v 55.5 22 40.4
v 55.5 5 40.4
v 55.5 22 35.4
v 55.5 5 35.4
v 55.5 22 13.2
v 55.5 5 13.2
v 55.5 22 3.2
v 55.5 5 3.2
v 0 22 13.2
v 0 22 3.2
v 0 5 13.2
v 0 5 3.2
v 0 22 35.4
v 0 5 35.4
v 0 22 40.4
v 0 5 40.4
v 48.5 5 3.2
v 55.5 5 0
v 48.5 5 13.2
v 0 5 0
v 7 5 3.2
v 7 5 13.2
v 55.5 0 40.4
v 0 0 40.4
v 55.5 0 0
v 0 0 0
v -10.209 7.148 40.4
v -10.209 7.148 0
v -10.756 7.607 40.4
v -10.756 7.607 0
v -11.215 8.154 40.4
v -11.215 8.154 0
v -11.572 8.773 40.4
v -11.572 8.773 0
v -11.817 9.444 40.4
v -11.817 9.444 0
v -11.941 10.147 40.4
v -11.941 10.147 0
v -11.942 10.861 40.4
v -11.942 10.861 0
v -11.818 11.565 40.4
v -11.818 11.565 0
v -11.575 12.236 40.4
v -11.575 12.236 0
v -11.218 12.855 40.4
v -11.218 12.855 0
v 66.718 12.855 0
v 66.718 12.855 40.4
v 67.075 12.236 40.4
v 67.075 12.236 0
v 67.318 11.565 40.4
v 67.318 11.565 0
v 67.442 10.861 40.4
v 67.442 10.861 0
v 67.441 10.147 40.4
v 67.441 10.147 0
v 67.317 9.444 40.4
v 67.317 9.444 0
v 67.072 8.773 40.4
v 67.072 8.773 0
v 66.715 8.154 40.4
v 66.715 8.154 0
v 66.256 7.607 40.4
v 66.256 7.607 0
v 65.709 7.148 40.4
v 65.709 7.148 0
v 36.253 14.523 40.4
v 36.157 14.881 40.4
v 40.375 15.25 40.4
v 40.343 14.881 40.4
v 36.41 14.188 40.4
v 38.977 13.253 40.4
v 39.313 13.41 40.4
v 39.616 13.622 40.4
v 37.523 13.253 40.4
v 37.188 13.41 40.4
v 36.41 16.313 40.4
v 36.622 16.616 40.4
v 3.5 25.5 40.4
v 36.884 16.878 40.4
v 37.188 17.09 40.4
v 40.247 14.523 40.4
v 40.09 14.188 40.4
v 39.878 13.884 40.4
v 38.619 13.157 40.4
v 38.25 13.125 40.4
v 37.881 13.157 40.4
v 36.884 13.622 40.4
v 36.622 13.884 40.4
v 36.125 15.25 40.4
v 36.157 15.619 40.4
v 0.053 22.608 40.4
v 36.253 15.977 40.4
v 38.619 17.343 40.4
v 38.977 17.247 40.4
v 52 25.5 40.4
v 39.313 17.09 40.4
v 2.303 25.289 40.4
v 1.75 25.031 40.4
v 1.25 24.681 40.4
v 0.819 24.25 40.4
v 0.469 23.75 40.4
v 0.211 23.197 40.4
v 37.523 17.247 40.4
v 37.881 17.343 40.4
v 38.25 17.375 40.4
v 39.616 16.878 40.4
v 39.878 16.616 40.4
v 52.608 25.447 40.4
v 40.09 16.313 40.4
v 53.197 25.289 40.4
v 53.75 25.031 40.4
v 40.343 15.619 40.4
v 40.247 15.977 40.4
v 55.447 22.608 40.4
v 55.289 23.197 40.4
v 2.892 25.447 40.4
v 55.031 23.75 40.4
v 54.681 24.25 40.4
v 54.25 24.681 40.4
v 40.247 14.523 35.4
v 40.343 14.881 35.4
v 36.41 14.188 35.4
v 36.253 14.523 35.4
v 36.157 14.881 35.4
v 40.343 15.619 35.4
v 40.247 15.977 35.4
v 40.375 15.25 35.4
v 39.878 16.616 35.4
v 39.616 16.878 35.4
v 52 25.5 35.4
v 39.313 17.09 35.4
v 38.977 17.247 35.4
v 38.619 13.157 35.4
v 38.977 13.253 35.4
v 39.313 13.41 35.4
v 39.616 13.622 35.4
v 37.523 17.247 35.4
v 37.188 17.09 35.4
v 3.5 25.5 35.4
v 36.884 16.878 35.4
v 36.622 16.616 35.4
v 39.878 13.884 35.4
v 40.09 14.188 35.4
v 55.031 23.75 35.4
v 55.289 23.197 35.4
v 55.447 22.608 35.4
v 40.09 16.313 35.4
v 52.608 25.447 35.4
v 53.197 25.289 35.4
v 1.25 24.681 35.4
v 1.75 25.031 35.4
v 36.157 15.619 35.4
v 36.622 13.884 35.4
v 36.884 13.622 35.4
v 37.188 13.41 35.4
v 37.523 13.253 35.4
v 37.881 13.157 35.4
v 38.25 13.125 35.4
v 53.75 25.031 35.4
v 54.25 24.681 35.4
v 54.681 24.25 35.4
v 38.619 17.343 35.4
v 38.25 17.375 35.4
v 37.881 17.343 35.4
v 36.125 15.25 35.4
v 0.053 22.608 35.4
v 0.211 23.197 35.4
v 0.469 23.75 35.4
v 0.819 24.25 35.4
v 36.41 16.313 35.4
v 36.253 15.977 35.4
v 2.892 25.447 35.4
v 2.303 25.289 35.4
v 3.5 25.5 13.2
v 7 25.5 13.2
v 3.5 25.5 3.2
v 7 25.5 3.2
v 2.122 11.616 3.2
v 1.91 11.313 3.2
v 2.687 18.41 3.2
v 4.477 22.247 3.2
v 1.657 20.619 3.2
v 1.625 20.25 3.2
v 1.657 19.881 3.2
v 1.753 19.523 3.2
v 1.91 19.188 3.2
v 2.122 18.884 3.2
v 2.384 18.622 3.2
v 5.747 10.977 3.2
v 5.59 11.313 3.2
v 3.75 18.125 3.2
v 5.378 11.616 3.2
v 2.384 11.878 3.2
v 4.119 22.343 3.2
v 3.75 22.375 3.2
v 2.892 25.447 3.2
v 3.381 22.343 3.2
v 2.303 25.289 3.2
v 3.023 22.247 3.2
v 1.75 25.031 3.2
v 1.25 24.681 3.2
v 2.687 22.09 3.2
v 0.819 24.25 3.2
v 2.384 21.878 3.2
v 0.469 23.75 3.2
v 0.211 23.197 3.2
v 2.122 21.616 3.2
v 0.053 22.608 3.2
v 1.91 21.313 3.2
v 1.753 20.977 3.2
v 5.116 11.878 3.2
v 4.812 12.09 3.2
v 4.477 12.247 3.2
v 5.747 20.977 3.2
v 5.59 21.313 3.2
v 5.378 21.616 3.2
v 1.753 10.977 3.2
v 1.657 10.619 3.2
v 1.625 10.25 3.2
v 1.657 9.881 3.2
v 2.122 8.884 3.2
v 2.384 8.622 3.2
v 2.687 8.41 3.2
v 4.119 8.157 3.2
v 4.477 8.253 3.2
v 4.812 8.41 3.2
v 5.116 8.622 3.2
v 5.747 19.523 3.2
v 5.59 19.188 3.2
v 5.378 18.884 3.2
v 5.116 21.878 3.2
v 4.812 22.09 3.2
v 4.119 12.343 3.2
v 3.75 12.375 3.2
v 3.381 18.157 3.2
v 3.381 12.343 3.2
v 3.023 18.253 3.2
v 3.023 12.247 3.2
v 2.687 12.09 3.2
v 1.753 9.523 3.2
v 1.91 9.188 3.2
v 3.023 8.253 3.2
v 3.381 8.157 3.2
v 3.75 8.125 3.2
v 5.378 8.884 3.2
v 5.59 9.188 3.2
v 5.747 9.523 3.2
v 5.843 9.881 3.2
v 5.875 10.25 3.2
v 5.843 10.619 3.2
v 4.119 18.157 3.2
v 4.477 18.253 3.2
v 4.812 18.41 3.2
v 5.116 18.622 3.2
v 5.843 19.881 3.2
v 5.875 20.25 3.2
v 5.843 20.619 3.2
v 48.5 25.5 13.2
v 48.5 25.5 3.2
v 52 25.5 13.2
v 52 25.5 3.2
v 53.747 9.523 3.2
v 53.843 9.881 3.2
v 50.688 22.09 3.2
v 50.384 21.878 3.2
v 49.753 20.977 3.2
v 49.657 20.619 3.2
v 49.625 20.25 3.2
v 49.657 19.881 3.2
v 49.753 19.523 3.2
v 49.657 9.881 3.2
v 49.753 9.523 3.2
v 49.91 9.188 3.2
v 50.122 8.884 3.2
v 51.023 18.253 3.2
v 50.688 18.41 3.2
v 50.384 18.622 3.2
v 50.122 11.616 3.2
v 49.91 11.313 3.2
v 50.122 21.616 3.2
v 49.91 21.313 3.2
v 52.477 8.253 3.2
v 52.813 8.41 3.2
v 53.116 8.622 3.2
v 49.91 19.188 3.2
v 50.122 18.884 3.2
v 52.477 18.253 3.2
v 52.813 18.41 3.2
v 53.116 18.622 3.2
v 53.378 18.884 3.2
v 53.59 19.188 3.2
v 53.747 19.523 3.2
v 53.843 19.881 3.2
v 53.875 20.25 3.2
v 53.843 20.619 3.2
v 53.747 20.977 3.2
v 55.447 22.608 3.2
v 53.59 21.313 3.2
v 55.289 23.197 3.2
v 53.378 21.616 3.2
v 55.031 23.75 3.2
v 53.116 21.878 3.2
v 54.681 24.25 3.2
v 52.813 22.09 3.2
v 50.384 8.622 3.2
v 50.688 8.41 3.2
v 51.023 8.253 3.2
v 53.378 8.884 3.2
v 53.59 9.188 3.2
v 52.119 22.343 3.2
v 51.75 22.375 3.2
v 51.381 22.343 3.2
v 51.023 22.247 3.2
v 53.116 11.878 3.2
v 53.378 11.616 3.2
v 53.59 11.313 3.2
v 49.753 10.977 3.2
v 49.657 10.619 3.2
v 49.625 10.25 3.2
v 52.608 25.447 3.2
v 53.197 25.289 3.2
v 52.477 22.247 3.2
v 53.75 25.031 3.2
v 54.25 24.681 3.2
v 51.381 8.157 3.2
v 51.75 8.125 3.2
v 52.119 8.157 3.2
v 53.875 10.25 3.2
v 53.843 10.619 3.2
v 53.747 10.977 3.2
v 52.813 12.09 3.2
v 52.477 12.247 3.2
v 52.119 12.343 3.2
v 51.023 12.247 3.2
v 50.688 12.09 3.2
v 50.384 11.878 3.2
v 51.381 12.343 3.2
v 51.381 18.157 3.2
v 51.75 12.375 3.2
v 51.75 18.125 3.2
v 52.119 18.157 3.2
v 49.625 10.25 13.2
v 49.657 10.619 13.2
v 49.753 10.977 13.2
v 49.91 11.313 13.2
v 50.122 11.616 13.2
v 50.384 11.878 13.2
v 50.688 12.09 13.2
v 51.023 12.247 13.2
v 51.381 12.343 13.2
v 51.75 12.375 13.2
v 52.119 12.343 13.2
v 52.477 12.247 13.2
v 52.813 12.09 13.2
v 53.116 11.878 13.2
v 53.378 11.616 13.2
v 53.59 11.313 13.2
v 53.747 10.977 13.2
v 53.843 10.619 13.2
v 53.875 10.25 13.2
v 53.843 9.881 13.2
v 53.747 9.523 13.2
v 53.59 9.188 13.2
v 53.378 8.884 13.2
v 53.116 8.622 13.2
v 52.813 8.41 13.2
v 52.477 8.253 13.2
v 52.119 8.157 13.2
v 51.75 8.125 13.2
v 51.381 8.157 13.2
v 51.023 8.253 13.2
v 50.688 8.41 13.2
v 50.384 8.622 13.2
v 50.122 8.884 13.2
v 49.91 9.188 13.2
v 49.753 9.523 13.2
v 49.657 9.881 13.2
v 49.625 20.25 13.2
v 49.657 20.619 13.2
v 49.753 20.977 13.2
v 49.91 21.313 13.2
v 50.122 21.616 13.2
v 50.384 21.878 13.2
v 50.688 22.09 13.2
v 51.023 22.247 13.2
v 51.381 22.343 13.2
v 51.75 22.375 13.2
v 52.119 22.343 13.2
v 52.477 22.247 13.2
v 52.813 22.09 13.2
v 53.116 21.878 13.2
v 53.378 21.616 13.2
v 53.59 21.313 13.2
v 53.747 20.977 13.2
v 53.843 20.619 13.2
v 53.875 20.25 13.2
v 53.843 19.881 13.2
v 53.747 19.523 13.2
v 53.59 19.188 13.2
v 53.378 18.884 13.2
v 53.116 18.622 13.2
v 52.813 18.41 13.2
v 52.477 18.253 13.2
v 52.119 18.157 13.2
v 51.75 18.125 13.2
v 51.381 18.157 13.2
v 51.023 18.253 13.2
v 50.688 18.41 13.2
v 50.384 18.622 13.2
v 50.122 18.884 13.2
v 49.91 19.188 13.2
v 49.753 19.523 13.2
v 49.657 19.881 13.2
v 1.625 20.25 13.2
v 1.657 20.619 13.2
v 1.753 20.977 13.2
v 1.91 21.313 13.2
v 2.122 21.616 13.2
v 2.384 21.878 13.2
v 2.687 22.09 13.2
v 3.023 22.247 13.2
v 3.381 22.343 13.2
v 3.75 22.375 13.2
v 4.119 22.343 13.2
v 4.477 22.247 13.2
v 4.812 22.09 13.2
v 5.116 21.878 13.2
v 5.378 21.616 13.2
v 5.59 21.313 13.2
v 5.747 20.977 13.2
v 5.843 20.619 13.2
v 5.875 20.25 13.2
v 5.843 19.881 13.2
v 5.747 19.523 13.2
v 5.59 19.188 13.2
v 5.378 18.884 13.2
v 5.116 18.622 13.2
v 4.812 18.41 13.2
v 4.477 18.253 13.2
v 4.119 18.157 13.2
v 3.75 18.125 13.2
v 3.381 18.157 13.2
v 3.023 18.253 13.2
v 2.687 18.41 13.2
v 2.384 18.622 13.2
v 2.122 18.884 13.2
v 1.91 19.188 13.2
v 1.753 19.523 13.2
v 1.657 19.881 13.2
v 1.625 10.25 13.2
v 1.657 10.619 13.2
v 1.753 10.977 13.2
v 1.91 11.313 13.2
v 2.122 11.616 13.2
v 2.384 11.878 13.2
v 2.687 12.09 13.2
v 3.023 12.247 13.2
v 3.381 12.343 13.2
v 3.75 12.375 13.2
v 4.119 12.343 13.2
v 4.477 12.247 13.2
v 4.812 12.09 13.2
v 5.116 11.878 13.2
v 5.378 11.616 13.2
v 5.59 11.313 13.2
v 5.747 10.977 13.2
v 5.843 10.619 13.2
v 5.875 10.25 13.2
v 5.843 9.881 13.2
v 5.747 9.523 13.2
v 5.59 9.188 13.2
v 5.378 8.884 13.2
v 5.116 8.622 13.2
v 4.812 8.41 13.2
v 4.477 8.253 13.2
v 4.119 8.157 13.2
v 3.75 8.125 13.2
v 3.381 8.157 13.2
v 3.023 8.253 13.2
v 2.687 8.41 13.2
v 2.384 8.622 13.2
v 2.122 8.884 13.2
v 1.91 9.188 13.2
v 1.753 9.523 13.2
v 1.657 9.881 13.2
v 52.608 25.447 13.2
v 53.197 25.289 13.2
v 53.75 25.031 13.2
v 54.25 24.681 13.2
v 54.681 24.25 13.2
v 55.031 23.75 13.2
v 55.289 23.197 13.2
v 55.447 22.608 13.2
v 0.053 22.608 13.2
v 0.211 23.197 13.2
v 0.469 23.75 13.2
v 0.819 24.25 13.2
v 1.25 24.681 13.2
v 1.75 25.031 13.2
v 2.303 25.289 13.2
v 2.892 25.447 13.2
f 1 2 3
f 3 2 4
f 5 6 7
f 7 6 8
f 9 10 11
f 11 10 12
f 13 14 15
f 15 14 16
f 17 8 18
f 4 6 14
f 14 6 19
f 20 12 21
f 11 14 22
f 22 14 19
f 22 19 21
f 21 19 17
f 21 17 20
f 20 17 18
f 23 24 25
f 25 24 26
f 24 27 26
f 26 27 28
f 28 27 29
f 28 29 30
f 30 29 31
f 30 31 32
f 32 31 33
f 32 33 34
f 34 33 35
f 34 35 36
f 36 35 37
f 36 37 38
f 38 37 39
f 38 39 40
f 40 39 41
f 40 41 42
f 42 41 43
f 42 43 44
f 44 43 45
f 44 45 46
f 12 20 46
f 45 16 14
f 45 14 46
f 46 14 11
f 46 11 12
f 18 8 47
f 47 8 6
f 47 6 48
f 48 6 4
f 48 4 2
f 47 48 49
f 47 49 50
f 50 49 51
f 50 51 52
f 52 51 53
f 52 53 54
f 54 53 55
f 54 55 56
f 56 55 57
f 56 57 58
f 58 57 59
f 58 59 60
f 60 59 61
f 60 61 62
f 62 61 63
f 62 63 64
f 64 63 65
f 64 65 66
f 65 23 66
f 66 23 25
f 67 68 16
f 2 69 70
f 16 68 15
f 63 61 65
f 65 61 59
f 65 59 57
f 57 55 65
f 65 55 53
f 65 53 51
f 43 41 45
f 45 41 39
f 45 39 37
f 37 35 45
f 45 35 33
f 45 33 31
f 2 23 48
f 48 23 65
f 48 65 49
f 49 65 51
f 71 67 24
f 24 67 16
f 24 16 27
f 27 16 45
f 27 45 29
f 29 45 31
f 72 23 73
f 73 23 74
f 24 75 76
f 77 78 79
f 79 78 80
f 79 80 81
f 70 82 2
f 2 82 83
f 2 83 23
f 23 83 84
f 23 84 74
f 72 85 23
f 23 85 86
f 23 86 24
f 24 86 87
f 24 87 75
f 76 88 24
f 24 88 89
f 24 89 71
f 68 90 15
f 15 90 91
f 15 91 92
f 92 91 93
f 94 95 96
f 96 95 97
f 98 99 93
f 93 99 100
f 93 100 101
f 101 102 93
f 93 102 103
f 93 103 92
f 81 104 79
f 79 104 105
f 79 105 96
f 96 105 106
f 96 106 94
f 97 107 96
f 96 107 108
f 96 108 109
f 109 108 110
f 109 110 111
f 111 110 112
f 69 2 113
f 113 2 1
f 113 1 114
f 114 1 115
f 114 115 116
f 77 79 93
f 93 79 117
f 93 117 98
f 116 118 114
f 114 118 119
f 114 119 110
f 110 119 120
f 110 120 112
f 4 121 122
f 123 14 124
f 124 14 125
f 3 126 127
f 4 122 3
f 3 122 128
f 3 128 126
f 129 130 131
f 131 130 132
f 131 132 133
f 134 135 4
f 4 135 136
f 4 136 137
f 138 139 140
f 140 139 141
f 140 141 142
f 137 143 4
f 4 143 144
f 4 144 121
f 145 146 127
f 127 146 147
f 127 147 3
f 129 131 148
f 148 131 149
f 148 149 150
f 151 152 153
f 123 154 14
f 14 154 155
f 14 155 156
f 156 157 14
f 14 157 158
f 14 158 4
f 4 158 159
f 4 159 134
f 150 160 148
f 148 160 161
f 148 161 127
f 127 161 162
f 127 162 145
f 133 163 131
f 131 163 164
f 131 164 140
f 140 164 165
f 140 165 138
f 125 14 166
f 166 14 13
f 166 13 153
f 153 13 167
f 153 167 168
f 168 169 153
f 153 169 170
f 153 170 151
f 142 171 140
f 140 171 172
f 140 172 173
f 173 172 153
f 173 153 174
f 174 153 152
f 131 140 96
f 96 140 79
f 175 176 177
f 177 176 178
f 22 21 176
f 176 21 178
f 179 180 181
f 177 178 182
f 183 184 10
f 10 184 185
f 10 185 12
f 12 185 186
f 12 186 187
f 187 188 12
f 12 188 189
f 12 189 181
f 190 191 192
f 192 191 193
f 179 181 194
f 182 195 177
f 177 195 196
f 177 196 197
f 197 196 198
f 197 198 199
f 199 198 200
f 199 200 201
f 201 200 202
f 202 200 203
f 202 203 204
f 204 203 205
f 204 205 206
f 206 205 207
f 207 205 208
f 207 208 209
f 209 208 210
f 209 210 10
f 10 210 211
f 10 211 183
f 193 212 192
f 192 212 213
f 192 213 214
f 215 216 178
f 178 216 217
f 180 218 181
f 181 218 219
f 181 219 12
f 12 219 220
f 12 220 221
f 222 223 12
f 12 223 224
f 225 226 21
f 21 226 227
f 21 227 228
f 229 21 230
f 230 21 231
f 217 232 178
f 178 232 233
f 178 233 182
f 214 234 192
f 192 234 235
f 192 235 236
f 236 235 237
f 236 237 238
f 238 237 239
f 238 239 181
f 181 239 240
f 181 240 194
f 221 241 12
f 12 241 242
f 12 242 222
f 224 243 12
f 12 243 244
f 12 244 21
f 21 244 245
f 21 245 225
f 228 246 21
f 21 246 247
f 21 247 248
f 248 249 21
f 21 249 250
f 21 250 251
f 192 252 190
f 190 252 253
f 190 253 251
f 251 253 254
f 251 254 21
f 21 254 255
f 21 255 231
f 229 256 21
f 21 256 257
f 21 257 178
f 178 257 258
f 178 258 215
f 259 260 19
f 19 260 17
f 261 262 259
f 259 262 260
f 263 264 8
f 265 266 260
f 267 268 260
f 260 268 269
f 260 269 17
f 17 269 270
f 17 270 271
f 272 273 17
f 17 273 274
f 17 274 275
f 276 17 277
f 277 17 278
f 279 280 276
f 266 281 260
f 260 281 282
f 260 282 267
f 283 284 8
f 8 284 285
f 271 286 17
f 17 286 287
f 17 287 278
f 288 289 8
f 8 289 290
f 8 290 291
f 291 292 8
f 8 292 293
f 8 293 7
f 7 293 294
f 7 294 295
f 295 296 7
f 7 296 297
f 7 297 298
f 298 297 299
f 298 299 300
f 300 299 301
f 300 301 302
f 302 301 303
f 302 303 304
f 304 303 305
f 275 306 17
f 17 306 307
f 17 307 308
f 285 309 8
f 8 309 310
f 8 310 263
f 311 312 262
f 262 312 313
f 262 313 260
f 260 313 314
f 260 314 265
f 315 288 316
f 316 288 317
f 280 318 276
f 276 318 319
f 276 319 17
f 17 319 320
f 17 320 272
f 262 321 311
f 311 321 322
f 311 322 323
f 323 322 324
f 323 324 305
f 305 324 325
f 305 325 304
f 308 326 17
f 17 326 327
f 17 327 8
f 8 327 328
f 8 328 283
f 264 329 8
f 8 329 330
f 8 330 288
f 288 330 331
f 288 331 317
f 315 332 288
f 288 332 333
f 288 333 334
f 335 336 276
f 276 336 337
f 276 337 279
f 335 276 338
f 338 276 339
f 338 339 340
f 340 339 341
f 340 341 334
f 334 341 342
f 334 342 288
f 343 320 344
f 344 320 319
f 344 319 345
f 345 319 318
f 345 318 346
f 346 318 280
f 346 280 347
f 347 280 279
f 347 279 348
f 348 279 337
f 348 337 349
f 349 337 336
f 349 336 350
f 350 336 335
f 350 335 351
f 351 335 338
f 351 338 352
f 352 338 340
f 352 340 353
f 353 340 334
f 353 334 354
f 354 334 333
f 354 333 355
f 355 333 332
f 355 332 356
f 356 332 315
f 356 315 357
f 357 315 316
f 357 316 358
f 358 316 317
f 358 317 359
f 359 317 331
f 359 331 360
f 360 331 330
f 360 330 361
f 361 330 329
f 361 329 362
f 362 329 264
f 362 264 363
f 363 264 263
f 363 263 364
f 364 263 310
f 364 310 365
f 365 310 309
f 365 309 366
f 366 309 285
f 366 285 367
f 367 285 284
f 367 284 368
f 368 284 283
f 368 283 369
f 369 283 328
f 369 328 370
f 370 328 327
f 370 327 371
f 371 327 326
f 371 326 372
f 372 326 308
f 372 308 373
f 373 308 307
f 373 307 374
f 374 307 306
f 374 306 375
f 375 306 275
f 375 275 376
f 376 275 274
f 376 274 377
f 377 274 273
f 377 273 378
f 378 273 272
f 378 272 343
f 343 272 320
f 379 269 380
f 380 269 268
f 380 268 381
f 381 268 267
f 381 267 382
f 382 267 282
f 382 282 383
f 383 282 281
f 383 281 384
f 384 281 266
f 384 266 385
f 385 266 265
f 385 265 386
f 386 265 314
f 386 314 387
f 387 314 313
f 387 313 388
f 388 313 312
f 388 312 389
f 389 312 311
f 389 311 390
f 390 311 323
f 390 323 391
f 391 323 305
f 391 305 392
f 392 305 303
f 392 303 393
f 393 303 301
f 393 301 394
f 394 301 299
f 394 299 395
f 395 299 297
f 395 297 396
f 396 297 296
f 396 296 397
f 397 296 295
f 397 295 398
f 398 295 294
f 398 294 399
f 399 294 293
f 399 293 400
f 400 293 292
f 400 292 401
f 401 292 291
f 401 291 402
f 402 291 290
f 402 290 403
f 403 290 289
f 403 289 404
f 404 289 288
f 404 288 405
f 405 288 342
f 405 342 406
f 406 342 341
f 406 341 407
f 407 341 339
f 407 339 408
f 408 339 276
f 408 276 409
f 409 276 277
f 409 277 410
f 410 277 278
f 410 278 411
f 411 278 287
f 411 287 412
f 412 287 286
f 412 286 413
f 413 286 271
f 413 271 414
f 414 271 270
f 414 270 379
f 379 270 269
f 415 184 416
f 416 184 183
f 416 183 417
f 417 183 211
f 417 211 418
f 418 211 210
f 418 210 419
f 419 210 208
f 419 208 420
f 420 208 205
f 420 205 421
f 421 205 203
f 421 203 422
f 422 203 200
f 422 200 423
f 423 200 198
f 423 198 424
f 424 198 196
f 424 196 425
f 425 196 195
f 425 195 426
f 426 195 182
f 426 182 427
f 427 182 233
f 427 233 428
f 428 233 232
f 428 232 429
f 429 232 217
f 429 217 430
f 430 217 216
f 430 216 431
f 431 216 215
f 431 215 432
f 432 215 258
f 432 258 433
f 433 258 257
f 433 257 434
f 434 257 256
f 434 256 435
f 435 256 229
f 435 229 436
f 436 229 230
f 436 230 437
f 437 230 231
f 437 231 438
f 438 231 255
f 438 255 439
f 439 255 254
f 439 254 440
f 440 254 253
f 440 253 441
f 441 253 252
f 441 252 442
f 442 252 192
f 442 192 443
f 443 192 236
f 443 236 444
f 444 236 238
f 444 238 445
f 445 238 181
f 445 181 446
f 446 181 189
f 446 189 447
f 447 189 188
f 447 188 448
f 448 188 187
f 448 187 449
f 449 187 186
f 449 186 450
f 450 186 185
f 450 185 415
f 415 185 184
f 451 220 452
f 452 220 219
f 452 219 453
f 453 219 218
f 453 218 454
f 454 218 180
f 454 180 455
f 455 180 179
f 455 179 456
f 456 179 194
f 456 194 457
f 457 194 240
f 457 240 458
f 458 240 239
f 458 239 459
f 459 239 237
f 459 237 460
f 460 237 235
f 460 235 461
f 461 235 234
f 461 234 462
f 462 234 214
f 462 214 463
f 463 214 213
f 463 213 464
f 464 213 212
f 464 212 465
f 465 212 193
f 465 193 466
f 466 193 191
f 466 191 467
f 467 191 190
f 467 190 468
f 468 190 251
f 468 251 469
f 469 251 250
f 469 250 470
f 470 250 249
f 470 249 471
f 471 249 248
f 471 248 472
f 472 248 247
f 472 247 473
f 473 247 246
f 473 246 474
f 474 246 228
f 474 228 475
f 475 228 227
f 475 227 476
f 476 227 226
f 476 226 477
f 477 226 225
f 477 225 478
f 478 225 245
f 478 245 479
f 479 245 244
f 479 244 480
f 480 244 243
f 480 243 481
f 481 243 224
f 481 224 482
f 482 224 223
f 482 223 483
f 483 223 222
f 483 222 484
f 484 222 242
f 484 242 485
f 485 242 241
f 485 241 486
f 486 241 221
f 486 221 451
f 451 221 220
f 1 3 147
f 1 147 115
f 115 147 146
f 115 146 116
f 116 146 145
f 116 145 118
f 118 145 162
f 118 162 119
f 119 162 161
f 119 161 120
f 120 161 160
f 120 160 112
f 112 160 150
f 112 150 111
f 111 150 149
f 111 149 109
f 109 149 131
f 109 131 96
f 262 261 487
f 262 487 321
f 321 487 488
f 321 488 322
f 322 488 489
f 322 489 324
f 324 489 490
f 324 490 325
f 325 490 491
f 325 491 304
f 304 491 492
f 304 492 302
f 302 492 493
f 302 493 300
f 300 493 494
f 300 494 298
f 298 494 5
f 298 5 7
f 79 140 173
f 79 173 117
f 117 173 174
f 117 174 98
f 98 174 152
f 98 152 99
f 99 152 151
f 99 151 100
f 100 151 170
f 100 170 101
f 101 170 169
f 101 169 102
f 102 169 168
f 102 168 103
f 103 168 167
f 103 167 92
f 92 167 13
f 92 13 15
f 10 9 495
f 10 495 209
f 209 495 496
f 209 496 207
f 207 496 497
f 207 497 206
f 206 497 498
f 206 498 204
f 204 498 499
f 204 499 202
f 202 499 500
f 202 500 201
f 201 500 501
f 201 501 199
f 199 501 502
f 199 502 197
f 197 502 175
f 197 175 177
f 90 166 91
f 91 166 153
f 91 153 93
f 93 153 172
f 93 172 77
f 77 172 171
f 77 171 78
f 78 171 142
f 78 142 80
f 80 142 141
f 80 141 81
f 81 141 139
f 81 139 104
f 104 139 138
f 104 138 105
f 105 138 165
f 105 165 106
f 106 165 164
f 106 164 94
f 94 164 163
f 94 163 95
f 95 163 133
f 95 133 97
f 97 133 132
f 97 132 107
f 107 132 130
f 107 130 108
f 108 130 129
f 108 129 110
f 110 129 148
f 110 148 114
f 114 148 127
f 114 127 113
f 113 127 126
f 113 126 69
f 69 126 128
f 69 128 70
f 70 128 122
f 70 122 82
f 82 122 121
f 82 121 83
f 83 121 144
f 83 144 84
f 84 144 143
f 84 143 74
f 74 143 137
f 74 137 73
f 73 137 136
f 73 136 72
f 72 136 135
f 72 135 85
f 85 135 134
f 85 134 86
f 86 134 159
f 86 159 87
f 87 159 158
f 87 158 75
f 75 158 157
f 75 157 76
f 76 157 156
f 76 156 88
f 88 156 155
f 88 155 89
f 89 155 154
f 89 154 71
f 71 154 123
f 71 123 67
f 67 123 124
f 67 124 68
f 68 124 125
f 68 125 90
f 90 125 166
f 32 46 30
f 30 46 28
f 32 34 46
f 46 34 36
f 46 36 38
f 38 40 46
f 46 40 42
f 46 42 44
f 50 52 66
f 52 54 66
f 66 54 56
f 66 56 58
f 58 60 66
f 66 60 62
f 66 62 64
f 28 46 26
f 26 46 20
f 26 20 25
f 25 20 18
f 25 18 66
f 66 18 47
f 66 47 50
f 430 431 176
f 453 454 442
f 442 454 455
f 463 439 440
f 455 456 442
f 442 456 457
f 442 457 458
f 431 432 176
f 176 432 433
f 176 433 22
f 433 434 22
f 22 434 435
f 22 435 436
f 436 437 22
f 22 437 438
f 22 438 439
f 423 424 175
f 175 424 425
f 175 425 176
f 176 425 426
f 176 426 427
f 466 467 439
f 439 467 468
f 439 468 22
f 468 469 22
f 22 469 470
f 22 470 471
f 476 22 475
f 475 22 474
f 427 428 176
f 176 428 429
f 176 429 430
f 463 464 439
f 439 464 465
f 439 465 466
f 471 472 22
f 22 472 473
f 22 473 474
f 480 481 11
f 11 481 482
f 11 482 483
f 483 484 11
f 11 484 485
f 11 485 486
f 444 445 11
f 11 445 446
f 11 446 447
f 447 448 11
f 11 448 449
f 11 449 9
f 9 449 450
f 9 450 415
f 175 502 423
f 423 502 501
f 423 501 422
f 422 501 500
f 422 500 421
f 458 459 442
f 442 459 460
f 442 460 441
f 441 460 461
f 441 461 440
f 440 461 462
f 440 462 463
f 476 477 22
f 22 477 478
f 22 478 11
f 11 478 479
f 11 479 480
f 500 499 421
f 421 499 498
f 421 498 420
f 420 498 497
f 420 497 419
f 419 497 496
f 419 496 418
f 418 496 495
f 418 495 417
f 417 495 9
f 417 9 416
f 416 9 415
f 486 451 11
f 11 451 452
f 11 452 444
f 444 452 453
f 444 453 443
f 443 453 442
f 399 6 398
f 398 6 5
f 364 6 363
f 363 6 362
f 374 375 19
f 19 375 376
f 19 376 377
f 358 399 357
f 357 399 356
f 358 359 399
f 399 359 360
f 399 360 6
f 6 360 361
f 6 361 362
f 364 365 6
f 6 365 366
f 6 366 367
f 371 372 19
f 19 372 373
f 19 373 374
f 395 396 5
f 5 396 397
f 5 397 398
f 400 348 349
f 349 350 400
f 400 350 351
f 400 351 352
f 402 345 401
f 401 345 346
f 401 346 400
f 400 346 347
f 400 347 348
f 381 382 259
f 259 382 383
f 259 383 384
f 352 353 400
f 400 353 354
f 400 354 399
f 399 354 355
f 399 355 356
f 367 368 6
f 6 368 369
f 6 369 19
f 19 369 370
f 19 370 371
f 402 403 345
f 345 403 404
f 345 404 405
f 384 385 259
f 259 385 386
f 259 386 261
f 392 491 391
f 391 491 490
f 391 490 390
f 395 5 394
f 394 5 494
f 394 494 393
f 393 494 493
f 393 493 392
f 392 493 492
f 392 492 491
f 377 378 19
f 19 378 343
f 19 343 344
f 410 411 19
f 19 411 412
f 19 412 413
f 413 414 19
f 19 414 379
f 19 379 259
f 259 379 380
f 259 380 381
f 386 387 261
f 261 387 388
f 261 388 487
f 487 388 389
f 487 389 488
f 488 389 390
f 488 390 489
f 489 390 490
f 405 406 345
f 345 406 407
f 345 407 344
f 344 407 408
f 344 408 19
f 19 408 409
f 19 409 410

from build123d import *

# Parameters (mm, degrees)
SKETCH1_W            = 55.5
SKETCH1_H            = 40.4
BASE_DEPTH           = 5
SKETCH2_W            = 55.5
SKETCH2_H            = 25.5
WALL_DEPTH           = 5
SKETCH3_W            = 7
SKETCH3_H            = 20.5
MOUNTINGTABS_DEPTH   = 5
LIPS_REACH           = 75.23
SKETCH5_R            = 2.125
MOUNTINGHOLES_DEPTH  = 5
FILLETS_R            = 3.5
SKETCH6_R            = 2.125
THROUGHHOLE_DEPTH    = 5
FILLETS_OF_MIRROR3_R = 3.5
SKETCH7_W            = 104.516790574
SKETCH7_H            = 66.327963249
CUT_EXTRUDE1_DEPTH   = 73
SKETCH8_R            = 2.125
BOSS_EXTRUDE1_DEPTH  = 5


with BuildPart() as part:
    # Sketch1 → base (new body)
    with BuildSketch(Plane(origin=(0, 0, 0), x_dir=(1, 0, 0), z_dir=(0, 1, 0))):
        with Locations((27.75, 20.2)):
            Rectangle(SKETCH1_W, SKETCH1_H)
    base = extrude(amount=BASE_DEPTH)

    # Sketch2 → wall (add)
    with BuildSketch(Plane(origin=(0, 0, -40.4), x_dir=(-1, 0, 0), z_dir=(0, 0, -1))):
        with Locations((-27.75, 12.75)):
            Rectangle(SKETCH2_W, SKETCH2_H)
    wall = extrude(amount=-WALL_DEPTH)

    # Sketch3 → mountingTabs (add)
    with BuildSketch(Plane.XY.offset(-8.2)):
        with Locations((3.5, 15.25)):
            Rectangle(SKETCH3_W, SKETCH3_H)
        with Locations((52, 15.25)):
            Rectangle(SKETCH3_W, SKETCH3_H)
    mountingtabs = extrude(amount=MOUNTINGTABS_DEPTH)

    # lips: up to this face of the body (flat: up to its plane)
    lips_end = Plane(part.part.faces().sort_by_distance((27.75, 12.75, -40.4))[0])
    # Sketch4 → lips (add, up to the picked face)
    with BuildSketch(Plane.XY, mode=Mode.PRIVATE) as lips_sk1:
        with BuildLine():
            Line((0, 0), (-10.208884478, 7.148337868))
            ThreePointArc((-10.208884478, 7.148337868), (-11.894564223, 9.792816133), (-11.218174515, 12.85505036))
            Line((-11.218174515, 12.85505036), (0, 5))
            Line((0, 5), (0, 0))
        make_face()
    lips_tool1 = split(extrude(lips_sk1.sketch, amount=-LIPS_REACH, mode=Mode.PRIVATE), bisect_by=lips_end, keep=Keep.BOTH, mode=Mode.PRIVATE)
    # Sketch4 → lips (add, up to the picked face)
    with BuildSketch(Plane.XY, mode=Mode.PRIVATE) as lips_sk2:
        with BuildLine():
            Line((55.5, 5), (66.718174515, 12.85505036))
            ThreePointArc((66.718174515, 12.85505036), (67.394564223, 9.792816133), (65.708884478, 7.148337868))
            Line((65.708884478, 7.148337868), (55.5, 0))
            Line((55.5, 0), (55.5, 5))
        make_face()
    lips_tool2 = split(extrude(lips_sk2.sketch, amount=-LIPS_REACH, mode=Mode.PRIVATE), bisect_by=lips_end, keep=Keep.BOTH, mode=Mode.PRIVATE)
    lips_1 = lips_tool1.solids().sort_by(Axis((-5.839287, 6.590277, 0), (0, 0, -1)))[0]
    add(lips_1)
    lips_2 = lips_tool2.solids().sort_by(Axis((61.339287, 6.590277, 0), (0, 0, -1)))[0]
    add(lips_2)
    lips = lips_1 + lips_2  # lips as one shape, for the pattern or mirror that repeats it

    # Sketch5 → mountingHoles (cut)
    with BuildSketch(Plane.XY.offset(-3.2)):
        with Locations((3.75, 20.25)):
            Circle(SKETCH5_R)
        with Locations(Location((3.75, 10.25, 0), (0, 0, 180))):
            Circle(SKETCH5_R)
        with Locations((51.75, 10.25)):
            Circle(SKETCH5_R)
        with Locations(Location((51.75, 20.25, 0), (0, 0, 180))):
            Circle(SKETCH5_R)
    mountingholes = extrude(amount=-MOUNTINGHOLES_DEPTH, mode=Mode.SUBTRACT)

    # fillets
    fillets_edges = [part.edges().sort_by_distance(p)[0] for p in [
        (0, 25.5, -37.9),
        (55.5, 25.5, -37.9),
        (0, 25.5, -5.7),
        (55.5, 25.5, -5.7),
    ]]
    fillet(fillets_edges, radius=FILLETS_R)

    # Sketch6 → throughHole (cut)
    with BuildSketch(Plane.XY.offset(-35.4)):
        with Locations((38.25, 15.25)):
            Circle(SKETCH6_R)
    throughhole = extrude(amount=-THROUGHHOLE_DEPTH, mode=Mode.SUBTRACT)

    # Mirror3: base, wall, mountingTabs, lips, mountingHoles, throughHole across plane
    add(base.mirror(Plane.XY))
    add(wall.mirror(Plane.XY))
    add(mountingtabs.mirror(Plane.XY))
    add(lips.mirror(Plane.XY))
    add(mountingholes.mirror(Plane.XY), mode=Mode.SUBTRACT)
    add(throughhole.mirror(Plane.XY), mode=Mode.SUBTRACT)

    # fillets of Mirror3
    fillets_of_mirror3_edges = [part.edges().sort_by_distance(p)[0] for p in [
        (0, 25.5, 37.9),
        (55.5, 25.5, 37.9),
        (0, 25.5, 5.7),
        (55.5, 25.5, 5.7),
    ]]
    fillet(fillets_of_mirror3_edges, radius=FILLETS_OF_MIRROR3_R)

    # Sketch7 → Cut-Extrude1 (cut)
    with BuildSketch(Plane.XY):
        with Locations((25.489671827, 15.622702088)):
            Rectangle(SKETCH7_W, SKETCH7_H)
    extrude(amount=-CUT_EXTRUDE1_DEPTH, mode=Mode.SUBTRACT)

    # Sketch8 → Boss-Extrude1 (add)
    # profile 1 of 2: a face of its own
    with BuildSketch(Plane.XY.offset(8.2)):
        with BuildLine():
            Line((7, 25.5), (3.5, 25.5))
            ThreePointArc((3.5, 25.5), (1.025126266, 24.474873734), (0, 22))
            Line((0, 22), (0, 5))
            Line((0, 5), (7, 5))
            Line((7, 5), (7, 25.5))
        make_face()
        with Locations((3.75, 20.25)):
            Circle(SKETCH8_R, mode=Mode.SUBTRACT)
        with Locations(Location((3.75, 10.25, 0), (0, 0, 180))):
            Circle(SKETCH8_R, mode=Mode.SUBTRACT)
    # profile 2 of 2: a face of its own
    with BuildSketch(Plane.XY.offset(8.2)):
        with BuildLine():
            Line((55.5, 5), (55.5, 22))
            ThreePointArc((55.5, 22), (54.474873734, 24.474873734), (52, 25.5))
            Line((52, 25.5), (48.5, 25.5))
            Line((48.5, 25.5), (48.5, 5))
            Line((48.5, 5), (55.5, 5))
        make_face()
        with Locations(Location((51.75, 20.25, 0), (0, 0, 180))):
            Circle(SKETCH8_R, mode=Mode.SUBTRACT)
        with Locations((51.75, 10.25)):
            Circle(SKETCH8_R, mode=Mode.SUBTRACT)
    extrude(amount=BOSS_EXTRUDE1_DEPTH)


solid = part.part
